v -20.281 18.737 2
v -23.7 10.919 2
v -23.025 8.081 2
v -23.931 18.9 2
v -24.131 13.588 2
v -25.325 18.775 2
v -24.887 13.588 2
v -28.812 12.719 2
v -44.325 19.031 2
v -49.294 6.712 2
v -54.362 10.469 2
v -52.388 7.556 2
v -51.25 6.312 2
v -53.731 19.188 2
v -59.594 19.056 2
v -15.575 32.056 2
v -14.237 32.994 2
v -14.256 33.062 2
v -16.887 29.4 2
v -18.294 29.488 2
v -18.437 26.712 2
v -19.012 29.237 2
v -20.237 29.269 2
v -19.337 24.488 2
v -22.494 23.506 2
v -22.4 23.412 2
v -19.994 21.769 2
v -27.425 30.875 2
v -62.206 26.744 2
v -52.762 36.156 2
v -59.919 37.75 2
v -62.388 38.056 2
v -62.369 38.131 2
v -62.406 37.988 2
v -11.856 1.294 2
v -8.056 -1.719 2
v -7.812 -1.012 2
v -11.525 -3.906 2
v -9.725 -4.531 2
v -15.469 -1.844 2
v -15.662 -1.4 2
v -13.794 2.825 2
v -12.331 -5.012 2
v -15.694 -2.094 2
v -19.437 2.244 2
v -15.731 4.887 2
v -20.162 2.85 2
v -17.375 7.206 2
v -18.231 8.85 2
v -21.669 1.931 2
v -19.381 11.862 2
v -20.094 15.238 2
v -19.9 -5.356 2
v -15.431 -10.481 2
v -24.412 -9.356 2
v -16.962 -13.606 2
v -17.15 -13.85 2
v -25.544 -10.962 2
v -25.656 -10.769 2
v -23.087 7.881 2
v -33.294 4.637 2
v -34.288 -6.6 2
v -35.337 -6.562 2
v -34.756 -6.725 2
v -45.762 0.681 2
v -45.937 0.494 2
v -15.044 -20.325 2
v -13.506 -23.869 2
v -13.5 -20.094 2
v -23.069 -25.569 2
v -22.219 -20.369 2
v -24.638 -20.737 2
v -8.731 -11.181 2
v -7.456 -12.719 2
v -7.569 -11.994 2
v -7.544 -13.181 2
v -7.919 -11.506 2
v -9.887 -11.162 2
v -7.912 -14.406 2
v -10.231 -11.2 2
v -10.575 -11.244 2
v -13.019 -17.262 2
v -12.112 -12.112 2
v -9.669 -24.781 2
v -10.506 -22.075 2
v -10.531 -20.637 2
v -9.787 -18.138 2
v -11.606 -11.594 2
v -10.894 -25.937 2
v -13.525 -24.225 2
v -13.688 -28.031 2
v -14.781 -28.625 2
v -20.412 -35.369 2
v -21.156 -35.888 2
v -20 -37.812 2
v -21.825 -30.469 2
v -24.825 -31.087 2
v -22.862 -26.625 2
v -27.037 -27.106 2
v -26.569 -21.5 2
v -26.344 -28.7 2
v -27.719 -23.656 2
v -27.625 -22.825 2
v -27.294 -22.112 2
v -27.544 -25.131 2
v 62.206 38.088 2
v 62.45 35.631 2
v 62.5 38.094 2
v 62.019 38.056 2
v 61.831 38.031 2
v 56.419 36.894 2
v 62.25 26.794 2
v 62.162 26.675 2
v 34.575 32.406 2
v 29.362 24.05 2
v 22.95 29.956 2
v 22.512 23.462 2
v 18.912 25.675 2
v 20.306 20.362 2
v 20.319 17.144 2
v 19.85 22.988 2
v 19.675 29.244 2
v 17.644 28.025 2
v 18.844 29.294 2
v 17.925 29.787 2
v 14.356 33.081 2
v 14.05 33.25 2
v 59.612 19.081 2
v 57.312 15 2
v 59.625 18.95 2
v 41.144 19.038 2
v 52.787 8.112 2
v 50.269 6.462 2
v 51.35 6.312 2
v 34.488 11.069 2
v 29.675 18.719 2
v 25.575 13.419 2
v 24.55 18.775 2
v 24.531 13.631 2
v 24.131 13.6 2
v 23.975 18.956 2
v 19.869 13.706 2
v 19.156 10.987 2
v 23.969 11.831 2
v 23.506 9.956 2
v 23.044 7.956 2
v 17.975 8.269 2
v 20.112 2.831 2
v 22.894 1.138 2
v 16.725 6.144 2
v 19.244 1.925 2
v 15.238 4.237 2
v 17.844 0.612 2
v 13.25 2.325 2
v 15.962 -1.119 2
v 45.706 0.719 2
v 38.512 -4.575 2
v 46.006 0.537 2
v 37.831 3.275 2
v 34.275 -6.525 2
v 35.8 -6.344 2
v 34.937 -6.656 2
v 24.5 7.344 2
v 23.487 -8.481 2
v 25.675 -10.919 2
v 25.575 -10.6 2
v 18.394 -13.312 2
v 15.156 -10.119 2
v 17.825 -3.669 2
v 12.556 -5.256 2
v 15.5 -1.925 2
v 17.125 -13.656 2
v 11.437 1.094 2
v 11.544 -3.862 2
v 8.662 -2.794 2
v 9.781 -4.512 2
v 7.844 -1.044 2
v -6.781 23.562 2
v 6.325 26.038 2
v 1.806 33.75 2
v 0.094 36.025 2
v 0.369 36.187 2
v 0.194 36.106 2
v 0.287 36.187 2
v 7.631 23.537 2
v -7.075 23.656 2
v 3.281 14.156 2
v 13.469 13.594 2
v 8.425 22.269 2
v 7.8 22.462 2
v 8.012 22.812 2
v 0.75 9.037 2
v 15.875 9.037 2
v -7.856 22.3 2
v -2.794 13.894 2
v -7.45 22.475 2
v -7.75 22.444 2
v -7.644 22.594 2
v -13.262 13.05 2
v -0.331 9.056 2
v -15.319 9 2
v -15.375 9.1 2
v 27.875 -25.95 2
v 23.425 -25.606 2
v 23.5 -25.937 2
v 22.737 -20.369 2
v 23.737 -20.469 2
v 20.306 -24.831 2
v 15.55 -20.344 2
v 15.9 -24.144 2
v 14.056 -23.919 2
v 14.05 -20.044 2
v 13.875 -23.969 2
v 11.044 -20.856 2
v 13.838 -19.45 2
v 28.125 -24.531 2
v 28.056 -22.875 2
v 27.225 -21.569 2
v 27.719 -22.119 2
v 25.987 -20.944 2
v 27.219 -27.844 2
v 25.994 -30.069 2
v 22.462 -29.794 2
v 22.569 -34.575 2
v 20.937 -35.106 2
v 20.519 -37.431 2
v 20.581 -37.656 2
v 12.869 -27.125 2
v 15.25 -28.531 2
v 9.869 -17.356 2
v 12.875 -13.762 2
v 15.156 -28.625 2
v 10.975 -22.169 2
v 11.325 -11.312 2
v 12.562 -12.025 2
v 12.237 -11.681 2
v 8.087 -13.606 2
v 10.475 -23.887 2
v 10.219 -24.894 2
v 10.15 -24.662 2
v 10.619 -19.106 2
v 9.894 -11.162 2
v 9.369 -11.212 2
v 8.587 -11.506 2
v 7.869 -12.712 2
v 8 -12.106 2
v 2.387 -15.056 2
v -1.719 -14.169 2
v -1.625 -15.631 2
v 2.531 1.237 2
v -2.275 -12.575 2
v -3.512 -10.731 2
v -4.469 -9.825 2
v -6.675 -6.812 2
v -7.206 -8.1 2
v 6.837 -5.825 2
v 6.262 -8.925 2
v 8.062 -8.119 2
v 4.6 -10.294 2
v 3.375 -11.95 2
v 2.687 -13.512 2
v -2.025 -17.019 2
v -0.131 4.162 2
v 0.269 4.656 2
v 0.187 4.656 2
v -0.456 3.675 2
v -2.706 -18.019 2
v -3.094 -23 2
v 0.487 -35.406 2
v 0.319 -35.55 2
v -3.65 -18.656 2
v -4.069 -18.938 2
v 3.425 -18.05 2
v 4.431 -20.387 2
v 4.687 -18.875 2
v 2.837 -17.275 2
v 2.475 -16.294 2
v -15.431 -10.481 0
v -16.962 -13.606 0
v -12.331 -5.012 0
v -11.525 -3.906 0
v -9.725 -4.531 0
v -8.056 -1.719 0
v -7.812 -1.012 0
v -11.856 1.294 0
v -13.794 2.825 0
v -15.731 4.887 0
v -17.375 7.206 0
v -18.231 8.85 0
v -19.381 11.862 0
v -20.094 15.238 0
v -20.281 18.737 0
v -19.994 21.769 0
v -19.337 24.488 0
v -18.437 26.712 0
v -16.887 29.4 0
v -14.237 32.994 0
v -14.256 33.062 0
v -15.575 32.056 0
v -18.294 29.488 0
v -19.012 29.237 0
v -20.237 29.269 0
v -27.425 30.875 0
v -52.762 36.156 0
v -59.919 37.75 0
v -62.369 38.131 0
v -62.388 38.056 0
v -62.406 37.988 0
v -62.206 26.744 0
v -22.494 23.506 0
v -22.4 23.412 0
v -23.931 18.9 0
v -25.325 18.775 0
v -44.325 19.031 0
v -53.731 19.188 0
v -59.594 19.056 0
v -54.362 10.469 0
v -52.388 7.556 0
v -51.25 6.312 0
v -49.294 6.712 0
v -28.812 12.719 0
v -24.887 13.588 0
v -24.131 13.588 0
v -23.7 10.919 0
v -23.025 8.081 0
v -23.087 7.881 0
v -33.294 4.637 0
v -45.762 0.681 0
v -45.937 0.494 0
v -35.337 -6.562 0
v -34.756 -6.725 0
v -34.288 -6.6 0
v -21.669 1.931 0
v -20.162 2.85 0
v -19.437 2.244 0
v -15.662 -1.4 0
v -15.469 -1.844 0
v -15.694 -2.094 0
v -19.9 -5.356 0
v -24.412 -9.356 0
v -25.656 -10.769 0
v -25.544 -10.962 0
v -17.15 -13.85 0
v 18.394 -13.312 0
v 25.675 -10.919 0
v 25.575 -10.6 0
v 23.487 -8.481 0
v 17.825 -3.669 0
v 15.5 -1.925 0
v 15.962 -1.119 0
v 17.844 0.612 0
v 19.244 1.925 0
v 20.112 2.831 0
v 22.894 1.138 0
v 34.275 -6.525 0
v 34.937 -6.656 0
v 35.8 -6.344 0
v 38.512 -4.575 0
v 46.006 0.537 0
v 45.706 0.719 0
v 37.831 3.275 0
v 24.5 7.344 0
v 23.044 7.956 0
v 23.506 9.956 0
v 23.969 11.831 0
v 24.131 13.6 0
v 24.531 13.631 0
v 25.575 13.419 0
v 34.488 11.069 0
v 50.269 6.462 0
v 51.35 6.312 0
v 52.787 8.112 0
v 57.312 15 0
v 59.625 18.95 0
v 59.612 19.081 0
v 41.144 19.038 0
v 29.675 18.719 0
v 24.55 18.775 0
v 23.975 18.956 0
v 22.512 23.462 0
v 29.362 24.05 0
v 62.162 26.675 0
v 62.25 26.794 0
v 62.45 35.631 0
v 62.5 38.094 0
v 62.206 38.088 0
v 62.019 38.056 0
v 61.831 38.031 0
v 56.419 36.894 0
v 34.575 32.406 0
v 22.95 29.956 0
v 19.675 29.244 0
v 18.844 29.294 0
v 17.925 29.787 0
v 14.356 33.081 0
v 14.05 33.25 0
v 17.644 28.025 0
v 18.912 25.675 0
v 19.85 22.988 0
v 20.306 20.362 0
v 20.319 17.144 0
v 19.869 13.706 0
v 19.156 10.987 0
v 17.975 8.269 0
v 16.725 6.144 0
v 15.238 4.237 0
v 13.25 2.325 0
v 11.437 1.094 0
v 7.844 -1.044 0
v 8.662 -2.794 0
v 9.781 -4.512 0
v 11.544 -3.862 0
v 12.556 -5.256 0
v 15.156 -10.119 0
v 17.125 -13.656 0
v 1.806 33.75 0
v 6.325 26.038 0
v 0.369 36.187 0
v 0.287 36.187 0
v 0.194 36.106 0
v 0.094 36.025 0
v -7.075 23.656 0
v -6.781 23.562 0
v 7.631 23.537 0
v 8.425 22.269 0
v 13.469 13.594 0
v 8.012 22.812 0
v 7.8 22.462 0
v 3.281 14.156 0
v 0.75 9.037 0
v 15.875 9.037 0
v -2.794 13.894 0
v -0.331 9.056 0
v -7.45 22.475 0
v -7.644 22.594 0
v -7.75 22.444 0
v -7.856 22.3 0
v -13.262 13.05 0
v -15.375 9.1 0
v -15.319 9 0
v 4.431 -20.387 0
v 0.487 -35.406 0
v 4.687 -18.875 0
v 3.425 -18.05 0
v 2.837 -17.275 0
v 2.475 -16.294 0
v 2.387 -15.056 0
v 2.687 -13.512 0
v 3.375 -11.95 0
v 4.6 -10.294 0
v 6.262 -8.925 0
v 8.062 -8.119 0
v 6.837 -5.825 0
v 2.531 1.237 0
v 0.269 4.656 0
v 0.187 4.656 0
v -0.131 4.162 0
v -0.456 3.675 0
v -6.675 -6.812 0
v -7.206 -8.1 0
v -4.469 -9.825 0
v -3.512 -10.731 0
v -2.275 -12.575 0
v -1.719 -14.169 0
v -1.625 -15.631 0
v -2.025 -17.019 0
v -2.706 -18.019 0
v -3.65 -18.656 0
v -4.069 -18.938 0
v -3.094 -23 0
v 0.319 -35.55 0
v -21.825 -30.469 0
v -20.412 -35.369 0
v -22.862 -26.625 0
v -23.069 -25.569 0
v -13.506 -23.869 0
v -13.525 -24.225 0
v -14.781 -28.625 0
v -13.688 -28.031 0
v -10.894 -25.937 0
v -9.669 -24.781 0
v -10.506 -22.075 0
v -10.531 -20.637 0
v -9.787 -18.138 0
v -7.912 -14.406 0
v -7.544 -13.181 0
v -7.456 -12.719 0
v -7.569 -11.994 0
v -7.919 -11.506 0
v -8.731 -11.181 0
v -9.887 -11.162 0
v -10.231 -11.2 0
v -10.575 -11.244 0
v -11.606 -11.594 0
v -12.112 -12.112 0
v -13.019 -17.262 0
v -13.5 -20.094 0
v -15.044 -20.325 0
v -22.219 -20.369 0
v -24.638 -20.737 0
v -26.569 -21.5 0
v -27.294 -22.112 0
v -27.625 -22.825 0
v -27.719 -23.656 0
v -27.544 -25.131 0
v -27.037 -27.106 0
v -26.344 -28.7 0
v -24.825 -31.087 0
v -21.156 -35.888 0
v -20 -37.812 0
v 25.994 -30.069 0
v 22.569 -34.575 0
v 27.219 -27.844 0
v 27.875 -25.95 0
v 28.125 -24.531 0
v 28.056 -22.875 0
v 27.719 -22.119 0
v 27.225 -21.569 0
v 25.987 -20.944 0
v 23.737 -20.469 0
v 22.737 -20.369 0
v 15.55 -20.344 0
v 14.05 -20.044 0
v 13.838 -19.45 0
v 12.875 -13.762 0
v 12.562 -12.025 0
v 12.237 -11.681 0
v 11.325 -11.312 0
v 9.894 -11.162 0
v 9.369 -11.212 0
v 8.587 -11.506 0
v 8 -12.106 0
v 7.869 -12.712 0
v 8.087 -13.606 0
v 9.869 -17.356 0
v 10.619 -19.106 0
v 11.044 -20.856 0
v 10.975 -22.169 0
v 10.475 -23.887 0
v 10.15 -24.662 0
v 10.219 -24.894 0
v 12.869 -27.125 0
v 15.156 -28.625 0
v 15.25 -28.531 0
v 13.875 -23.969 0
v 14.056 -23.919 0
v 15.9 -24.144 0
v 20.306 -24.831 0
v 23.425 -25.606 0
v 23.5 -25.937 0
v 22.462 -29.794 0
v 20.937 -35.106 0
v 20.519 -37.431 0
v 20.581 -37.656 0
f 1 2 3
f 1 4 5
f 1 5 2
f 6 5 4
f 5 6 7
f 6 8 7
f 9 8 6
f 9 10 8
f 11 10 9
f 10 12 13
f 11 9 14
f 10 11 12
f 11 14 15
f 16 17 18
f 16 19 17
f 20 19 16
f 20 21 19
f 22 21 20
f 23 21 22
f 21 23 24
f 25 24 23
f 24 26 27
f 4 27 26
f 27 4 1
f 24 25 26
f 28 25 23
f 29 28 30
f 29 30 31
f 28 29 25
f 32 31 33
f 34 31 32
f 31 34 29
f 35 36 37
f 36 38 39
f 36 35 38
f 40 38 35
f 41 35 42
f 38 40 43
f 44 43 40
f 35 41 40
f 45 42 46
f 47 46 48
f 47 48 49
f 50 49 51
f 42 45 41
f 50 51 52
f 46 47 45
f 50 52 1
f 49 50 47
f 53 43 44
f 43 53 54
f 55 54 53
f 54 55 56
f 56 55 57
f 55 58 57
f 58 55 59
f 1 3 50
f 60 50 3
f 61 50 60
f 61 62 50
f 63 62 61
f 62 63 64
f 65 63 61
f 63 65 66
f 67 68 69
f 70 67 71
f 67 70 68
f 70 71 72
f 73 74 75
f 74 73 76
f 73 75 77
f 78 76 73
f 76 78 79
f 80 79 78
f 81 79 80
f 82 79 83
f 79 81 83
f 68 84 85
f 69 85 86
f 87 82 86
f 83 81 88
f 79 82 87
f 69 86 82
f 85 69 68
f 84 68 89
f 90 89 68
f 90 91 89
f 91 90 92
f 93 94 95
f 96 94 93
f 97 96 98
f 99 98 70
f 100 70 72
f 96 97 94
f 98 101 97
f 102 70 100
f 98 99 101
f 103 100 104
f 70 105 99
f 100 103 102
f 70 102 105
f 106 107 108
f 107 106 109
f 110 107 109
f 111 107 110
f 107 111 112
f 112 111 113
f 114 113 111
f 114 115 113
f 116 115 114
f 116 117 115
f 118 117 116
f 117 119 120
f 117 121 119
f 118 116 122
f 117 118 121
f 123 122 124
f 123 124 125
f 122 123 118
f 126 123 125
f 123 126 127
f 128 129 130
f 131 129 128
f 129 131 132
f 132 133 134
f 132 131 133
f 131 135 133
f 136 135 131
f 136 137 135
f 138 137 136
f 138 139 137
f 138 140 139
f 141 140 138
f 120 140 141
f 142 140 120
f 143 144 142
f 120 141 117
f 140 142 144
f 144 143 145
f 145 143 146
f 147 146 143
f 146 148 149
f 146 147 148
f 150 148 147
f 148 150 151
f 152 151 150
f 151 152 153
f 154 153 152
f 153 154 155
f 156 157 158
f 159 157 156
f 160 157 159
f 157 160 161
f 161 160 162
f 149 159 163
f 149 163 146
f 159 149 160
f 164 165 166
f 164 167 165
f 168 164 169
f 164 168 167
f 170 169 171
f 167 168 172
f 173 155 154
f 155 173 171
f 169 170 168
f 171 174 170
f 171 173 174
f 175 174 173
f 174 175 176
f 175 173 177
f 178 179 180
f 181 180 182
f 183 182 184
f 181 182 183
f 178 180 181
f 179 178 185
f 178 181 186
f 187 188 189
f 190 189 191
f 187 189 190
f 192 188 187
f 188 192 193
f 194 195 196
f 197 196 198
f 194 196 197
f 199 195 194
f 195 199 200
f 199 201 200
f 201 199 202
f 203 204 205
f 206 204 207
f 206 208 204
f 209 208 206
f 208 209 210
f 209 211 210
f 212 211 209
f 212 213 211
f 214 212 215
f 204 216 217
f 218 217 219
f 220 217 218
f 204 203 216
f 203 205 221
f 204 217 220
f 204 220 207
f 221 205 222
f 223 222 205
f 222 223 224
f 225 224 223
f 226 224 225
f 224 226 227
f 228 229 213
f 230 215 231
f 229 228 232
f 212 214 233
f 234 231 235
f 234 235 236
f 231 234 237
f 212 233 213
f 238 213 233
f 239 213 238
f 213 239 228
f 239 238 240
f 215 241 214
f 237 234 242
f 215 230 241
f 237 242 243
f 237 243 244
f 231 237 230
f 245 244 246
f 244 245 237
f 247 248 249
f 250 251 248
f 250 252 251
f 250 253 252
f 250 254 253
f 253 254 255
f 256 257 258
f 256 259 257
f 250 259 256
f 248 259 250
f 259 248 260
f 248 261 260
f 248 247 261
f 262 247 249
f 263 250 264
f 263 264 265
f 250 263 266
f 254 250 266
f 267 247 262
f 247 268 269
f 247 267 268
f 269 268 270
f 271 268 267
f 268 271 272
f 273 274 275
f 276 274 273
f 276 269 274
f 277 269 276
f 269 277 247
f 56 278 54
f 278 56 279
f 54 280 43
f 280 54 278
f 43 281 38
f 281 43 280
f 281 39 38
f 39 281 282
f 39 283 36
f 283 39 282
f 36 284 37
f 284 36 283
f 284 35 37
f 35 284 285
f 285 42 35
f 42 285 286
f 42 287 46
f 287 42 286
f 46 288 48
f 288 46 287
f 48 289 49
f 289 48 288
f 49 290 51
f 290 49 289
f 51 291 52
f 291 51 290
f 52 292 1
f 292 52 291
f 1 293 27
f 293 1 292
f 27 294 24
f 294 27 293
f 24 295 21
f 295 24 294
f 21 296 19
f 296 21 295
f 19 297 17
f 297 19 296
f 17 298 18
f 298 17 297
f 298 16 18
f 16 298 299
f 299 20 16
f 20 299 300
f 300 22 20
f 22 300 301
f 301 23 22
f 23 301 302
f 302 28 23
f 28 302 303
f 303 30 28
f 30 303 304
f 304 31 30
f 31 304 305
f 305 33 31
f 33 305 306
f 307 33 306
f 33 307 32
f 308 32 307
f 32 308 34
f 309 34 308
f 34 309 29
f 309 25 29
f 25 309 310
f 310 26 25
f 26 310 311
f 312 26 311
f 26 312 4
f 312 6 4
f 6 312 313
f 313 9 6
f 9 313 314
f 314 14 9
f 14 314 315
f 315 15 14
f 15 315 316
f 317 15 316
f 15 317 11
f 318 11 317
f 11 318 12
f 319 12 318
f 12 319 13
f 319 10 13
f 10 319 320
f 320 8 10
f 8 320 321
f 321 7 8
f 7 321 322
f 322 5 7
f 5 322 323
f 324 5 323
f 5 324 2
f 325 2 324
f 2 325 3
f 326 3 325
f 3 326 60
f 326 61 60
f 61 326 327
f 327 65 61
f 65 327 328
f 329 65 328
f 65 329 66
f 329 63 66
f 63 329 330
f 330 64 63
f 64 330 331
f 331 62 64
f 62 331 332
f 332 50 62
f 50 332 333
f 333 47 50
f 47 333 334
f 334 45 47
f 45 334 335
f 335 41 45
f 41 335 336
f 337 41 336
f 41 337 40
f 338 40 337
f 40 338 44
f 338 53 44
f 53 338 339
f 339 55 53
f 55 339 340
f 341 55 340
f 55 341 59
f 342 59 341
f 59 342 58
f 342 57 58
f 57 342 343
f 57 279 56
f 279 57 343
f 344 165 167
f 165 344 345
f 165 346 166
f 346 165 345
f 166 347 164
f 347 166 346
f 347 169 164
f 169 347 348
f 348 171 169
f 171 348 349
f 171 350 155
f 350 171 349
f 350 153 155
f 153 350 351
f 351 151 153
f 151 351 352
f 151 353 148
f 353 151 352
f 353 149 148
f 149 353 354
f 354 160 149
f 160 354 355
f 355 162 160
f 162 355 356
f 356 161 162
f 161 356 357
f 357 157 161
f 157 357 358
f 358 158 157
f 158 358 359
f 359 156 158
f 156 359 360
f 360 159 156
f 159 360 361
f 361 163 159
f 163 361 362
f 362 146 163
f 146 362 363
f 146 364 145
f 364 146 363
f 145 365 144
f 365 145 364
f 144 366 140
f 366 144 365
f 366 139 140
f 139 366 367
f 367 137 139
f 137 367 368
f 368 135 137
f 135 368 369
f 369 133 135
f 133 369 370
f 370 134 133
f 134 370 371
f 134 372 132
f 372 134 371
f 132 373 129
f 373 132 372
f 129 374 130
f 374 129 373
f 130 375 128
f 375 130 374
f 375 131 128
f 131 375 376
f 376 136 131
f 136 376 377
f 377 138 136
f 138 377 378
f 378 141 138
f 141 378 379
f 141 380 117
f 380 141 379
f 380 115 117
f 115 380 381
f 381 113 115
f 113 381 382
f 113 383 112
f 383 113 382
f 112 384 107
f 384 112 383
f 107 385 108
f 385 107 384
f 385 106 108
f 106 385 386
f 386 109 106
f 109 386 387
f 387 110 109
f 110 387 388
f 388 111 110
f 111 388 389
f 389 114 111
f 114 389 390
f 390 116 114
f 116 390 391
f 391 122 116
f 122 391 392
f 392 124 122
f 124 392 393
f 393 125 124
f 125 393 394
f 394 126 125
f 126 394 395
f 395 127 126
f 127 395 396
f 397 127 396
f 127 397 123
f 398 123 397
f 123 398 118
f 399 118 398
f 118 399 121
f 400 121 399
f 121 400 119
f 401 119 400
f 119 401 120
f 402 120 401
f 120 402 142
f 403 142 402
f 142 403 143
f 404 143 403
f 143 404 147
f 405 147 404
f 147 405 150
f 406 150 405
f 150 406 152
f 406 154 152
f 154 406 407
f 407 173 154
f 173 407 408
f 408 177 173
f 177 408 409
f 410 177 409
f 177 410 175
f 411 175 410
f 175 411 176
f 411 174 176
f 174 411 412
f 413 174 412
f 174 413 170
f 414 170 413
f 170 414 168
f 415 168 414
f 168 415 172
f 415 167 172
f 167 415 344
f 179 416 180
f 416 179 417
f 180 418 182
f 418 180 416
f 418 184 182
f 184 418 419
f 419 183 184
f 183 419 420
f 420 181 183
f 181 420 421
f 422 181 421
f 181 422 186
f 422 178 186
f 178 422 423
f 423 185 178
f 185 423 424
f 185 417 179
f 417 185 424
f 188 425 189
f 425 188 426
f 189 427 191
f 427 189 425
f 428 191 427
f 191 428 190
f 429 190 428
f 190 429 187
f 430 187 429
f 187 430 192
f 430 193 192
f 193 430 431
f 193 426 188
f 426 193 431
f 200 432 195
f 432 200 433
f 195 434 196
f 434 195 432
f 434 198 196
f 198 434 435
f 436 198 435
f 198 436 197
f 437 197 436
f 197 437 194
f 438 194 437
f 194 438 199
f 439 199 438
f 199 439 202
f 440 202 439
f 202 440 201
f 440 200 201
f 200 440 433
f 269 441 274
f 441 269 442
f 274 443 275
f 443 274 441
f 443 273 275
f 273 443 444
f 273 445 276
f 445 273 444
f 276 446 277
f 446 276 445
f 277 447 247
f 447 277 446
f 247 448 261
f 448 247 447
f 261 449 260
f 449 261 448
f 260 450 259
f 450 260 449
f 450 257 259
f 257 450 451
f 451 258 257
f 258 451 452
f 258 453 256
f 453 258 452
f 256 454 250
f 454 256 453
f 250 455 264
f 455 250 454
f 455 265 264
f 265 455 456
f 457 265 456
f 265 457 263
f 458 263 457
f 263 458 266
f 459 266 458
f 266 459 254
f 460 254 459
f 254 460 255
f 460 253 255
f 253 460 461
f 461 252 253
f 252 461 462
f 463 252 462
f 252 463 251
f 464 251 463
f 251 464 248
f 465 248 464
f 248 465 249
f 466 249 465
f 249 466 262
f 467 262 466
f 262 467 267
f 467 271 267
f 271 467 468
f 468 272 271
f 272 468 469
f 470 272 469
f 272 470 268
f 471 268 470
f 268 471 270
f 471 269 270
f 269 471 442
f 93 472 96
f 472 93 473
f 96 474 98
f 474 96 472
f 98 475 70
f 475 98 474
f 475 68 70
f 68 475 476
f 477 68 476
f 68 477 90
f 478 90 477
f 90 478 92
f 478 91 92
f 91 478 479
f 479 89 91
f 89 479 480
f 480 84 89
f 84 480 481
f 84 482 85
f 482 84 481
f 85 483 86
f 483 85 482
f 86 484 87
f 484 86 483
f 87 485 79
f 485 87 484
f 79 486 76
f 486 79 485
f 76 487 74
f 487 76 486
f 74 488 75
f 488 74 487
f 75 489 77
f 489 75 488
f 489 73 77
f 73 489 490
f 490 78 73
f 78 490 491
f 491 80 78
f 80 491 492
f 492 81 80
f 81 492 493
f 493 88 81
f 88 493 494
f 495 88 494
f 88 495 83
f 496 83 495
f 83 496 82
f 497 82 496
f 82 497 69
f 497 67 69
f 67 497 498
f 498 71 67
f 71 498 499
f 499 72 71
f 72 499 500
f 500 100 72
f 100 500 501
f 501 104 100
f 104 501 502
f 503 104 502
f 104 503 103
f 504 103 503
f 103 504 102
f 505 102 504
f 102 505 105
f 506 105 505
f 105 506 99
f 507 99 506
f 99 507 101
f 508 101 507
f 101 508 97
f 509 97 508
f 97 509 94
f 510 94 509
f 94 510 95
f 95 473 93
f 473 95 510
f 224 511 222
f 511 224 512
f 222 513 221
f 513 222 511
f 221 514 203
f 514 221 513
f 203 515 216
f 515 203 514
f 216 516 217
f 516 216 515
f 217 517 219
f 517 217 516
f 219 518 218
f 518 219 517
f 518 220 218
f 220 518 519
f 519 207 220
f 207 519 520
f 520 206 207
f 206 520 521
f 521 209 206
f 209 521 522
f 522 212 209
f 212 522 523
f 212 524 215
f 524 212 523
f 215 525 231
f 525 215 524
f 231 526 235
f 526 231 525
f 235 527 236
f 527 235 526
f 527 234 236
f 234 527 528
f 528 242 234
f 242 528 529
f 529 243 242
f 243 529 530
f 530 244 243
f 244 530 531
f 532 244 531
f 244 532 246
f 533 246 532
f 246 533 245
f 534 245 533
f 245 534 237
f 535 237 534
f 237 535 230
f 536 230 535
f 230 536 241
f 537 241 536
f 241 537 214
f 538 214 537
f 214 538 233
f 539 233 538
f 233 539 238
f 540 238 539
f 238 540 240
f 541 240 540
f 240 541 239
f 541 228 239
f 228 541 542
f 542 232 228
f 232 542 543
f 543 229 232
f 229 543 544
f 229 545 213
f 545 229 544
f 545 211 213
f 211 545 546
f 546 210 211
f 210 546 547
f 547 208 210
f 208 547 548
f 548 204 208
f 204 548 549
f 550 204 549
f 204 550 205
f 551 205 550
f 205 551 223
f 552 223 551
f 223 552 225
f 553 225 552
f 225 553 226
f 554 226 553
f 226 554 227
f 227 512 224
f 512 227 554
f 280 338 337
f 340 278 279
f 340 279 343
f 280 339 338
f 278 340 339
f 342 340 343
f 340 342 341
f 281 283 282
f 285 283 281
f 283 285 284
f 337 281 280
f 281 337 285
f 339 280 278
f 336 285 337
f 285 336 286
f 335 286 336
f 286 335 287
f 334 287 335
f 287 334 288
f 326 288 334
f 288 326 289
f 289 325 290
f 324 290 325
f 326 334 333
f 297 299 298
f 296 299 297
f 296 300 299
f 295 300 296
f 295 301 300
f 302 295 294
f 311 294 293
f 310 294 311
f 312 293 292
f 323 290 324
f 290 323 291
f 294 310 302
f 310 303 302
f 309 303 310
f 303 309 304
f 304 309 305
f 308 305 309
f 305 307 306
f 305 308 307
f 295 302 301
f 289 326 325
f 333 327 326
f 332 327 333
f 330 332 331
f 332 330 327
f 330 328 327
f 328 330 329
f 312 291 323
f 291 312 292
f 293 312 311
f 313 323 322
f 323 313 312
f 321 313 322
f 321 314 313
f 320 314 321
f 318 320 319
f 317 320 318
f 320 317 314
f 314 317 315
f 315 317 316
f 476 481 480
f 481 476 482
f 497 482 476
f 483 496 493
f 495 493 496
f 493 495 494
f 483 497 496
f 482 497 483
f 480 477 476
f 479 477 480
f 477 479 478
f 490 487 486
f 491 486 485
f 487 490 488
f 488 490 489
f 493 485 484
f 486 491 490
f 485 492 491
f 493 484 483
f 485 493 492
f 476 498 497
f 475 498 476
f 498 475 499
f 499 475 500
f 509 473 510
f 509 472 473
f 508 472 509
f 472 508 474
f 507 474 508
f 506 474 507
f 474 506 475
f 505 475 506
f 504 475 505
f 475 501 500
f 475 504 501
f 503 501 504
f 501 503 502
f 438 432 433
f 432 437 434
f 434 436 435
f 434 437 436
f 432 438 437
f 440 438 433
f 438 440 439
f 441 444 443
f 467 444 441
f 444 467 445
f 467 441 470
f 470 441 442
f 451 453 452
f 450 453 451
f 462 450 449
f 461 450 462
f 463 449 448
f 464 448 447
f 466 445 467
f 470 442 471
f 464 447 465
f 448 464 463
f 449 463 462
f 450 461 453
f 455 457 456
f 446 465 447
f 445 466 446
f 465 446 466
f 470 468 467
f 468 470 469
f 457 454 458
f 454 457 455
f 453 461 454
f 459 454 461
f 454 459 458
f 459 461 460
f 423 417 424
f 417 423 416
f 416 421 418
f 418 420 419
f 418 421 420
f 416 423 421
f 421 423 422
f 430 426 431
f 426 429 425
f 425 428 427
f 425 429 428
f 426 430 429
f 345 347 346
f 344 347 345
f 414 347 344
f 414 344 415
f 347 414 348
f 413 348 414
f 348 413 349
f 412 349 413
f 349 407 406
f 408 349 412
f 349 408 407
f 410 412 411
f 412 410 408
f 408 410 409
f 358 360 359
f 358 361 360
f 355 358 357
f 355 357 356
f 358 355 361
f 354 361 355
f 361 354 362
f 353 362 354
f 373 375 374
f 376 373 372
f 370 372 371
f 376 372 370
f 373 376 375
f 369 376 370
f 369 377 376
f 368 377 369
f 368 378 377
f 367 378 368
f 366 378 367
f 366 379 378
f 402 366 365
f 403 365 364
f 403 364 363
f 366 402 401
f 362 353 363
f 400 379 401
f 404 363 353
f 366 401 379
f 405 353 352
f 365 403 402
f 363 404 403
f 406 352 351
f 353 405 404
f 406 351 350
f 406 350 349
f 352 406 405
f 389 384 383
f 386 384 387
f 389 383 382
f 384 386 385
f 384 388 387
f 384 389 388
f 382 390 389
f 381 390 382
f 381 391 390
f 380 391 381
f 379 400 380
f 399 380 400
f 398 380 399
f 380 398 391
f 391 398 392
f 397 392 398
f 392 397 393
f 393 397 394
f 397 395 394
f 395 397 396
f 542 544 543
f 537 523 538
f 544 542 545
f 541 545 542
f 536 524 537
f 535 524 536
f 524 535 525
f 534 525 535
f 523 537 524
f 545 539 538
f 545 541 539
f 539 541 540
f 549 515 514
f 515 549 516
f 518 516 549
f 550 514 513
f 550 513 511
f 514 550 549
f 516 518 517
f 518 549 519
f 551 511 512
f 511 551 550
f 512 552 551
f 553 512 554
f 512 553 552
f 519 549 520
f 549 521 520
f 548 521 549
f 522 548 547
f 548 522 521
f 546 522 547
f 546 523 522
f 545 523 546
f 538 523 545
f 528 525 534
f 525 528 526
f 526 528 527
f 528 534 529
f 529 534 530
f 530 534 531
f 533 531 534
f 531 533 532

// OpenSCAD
module 4811064c1d5277969fd79f54a9f830ff_1()
{
 /* Generated by trace2scad version 20150415
    http://aggregate.org/MAKE/TRACE2SCAD/
    Optimized model has 279/3844 original points
 */
 color([0.48, 0.48, 0.48])
 assign(minx=0) /* polygon minx=15 */
 assign(miny=0) /* polygon miny=75 */
 assign(maxx=20000) /* polygon maxx=20000 */
 assign(maxy=12250) /* polygon maxy=12226 */
 assign(dx=maxx-minx)
 assign(dy=maxy-miny)
 assign(maxd=((dx>dy)?dx:dy))
 scale([1/maxd, 1/maxd, 1])
 translate([-minx-dx/2, -miny-dy/2, 0])
 linear_extrude(height=1, convexity=279)
 union() {
  union() {
   polygon([[18,12214],[15,12203],[47,10404],[6401,9886],[6416,9871],[6171,9149],[5948,9129],[2908,9170],[1403,9195],[465,9174],[1302,7800],[1618,7334],[1800,7135],[2113,7199],[5390,8160],[6018,8299],[6139,8299],[6208,7872],[6316,7418],[6306,7386],[4673,6867],[2678,6234],[2650,6204],[4346,5075],[4439,5049],[4514,5069],[6533,6434],[6774,6581],[6890,6484],[7494,5901],[7525,5830],[7489,5790],[6816,5268],[6094,4628],[5895,4402],[5913,4371],[7256,3909],[7286,3948],[7531,4448],[8027,5323],[8156,5500],[8444,5400],[8711,5850],[8750,5963],[8103,6332],[7793,6577],[7483,6907],[7220,7278],[7083,7541],[6899,8023],[6785,8563],[6755,9123],[6801,9608],[6906,10043],[7050,10399],[7298,10829],[7722,11404],[7719,11415],[7508,11254],[7073,10843],[6958,10803],[6762,10808],[5612,11065],[1558,11910],[413,12165],[21,12226]], convexity=24);
   polygon([[19923,12214],[19893,12210],[19027,12028],[15532,11310],[13672,10918],[13148,10804],[13015,10812],[12868,10891],[12297,11418],[12248,11445],[12823,10609],[13026,10233],[13176,9803],[13249,9383],[13251,8868],[13179,8318],[13065,7883],[12876,7448],[12676,7108],[12438,6803],[12120,6497],[11830,6300],[11255,5958],[11386,5678],[11565,5403],[11847,5507],[12009,5284],[12425,4506],[12740,3940],[12943,3995],[14108,4378],[14092,4429],[13758,4768],[12852,5538],[12480,5817],[12554,5946],[12855,6223],[13079,6433],[13218,6578],[13663,6307],[15484,5081],[15590,5060],[15728,5110],[16162,5393],[17361,6211],[17313,6240],[16053,6649],[13920,7300],[13687,7398],[13761,7718],[13835,8018],[13861,8301],[13925,8306],[14092,8272],[15518,7896],[18043,7159],[18216,7135],[18446,7423],[19170,8525],[19540,9157],[19538,9178],[16583,9171],[14748,9120],[13928,9129],[13836,9158],[13602,9879],[14698,9973],[19946,10393],[19960,10412],[19992,11826],[20000,12220],[19953,12219]], convexity=23);
   polygon([[10031,11902],[10015,11889],[8868,9910],[8915,9895],[11221,9891],[11012,10291],[10289,11525],[10059,11915],[10046,11915]], convexity=5);
   polygon([[11265,9747],[11248,9719],[10525,8390],[10120,7571],[12540,7571],[12155,8300],[11348,9688],[11282,9775]], convexity=5);
   polygon([[8760,9716],[8743,9693],[7878,8213],[7540,7581],[7549,7565],[9947,7574],[9553,8348],[8808,9721],[8777,9740]], convexity=6);
   polygon([[9979,6791],[9927,6713],[8932,5035],[8847,4829],[9285,4553],[9438,4408],[9636,4113],[9725,3858],[9740,3624],[9676,3402],[9567,3242],[9416,3140],[9349,3095],[9505,2445],[10051,437],[10078,460],[10709,2863],[10750,3105],[10548,3237],[10454,3361],[10396,3518],[10382,3716],[10430,3963],[10540,4213],[10736,4478],[11002,4697],[11290,4826],[11094,5193],[10405,6323],[10043,6870],[10030,6870]], convexity=10);
   polygon([[8363,4333],[8308,4326],[8143,4270],[8062,4187],[7917,3363],[7840,2910],[7593,2873],[6445,2866],[6058,2807],[5749,2685],[5633,2587],[5580,2473],[5565,2340],[5593,2104],[5674,1788],[5785,1533],[6028,1151],[6615,383],[6800,75],[6734,466],[6508,1250],[6342,1865],[6309,2034],[7839,2306],[7836,2249],[7635,1545],[7810,1640],[8257,1975],[8453,2160],[8319,2593],[8315,2823],[8434,3223],[8734,3820],[8793,4016],[8807,4090],[8789,4206],[8733,4284],[8603,4336],[8418,4339]], convexity=11);
   polygon([[11541,4335],[11499,4331],[11374,4284],[11280,4188],[11259,4091],[11294,3948],[11579,3348],[11699,3068],[11767,2788],[11756,2578],[11676,2303],[11624,2179],[11635,2142],[12059,1785],[12425,1545],[12440,1560],[12220,2290],[12249,2298],[12544,2262],[13249,2152],[13748,2028],[13760,1975],[13594,1358],[13350,508],[13283,136],[13293,100],[13611,593],[14159,1314],[14355,1670],[14460,1973],[14500,2200],[14489,2465],[14435,2586],[14356,2674],[14158,2774],[13798,2850],[13638,2866],[12488,2870],[12248,2918],[12214,3013],[12060,3923],[12010,4201],[11958,4256],[11812,4315],[11583,4339]], convexity=14);
  }
 }
}

module 4811064c1d5277969fd79f54a9f830ff()
{
 /* all layers combined, scaled to within a 1mm cube */
 scale([1, 1, 1/1])
 difference() {
  union() {
   scale([1,1,2]) translate([0,0,-0.5]) 4811064c1d5277969fd79f54a9f830ff_1();
  }
  translate([0,0,-2]) cube([2,2,4],center=true);
 }
}

scale([125, 125, 2]) {
	4811064c1d5277969fd79f54a9f830ff();
}
